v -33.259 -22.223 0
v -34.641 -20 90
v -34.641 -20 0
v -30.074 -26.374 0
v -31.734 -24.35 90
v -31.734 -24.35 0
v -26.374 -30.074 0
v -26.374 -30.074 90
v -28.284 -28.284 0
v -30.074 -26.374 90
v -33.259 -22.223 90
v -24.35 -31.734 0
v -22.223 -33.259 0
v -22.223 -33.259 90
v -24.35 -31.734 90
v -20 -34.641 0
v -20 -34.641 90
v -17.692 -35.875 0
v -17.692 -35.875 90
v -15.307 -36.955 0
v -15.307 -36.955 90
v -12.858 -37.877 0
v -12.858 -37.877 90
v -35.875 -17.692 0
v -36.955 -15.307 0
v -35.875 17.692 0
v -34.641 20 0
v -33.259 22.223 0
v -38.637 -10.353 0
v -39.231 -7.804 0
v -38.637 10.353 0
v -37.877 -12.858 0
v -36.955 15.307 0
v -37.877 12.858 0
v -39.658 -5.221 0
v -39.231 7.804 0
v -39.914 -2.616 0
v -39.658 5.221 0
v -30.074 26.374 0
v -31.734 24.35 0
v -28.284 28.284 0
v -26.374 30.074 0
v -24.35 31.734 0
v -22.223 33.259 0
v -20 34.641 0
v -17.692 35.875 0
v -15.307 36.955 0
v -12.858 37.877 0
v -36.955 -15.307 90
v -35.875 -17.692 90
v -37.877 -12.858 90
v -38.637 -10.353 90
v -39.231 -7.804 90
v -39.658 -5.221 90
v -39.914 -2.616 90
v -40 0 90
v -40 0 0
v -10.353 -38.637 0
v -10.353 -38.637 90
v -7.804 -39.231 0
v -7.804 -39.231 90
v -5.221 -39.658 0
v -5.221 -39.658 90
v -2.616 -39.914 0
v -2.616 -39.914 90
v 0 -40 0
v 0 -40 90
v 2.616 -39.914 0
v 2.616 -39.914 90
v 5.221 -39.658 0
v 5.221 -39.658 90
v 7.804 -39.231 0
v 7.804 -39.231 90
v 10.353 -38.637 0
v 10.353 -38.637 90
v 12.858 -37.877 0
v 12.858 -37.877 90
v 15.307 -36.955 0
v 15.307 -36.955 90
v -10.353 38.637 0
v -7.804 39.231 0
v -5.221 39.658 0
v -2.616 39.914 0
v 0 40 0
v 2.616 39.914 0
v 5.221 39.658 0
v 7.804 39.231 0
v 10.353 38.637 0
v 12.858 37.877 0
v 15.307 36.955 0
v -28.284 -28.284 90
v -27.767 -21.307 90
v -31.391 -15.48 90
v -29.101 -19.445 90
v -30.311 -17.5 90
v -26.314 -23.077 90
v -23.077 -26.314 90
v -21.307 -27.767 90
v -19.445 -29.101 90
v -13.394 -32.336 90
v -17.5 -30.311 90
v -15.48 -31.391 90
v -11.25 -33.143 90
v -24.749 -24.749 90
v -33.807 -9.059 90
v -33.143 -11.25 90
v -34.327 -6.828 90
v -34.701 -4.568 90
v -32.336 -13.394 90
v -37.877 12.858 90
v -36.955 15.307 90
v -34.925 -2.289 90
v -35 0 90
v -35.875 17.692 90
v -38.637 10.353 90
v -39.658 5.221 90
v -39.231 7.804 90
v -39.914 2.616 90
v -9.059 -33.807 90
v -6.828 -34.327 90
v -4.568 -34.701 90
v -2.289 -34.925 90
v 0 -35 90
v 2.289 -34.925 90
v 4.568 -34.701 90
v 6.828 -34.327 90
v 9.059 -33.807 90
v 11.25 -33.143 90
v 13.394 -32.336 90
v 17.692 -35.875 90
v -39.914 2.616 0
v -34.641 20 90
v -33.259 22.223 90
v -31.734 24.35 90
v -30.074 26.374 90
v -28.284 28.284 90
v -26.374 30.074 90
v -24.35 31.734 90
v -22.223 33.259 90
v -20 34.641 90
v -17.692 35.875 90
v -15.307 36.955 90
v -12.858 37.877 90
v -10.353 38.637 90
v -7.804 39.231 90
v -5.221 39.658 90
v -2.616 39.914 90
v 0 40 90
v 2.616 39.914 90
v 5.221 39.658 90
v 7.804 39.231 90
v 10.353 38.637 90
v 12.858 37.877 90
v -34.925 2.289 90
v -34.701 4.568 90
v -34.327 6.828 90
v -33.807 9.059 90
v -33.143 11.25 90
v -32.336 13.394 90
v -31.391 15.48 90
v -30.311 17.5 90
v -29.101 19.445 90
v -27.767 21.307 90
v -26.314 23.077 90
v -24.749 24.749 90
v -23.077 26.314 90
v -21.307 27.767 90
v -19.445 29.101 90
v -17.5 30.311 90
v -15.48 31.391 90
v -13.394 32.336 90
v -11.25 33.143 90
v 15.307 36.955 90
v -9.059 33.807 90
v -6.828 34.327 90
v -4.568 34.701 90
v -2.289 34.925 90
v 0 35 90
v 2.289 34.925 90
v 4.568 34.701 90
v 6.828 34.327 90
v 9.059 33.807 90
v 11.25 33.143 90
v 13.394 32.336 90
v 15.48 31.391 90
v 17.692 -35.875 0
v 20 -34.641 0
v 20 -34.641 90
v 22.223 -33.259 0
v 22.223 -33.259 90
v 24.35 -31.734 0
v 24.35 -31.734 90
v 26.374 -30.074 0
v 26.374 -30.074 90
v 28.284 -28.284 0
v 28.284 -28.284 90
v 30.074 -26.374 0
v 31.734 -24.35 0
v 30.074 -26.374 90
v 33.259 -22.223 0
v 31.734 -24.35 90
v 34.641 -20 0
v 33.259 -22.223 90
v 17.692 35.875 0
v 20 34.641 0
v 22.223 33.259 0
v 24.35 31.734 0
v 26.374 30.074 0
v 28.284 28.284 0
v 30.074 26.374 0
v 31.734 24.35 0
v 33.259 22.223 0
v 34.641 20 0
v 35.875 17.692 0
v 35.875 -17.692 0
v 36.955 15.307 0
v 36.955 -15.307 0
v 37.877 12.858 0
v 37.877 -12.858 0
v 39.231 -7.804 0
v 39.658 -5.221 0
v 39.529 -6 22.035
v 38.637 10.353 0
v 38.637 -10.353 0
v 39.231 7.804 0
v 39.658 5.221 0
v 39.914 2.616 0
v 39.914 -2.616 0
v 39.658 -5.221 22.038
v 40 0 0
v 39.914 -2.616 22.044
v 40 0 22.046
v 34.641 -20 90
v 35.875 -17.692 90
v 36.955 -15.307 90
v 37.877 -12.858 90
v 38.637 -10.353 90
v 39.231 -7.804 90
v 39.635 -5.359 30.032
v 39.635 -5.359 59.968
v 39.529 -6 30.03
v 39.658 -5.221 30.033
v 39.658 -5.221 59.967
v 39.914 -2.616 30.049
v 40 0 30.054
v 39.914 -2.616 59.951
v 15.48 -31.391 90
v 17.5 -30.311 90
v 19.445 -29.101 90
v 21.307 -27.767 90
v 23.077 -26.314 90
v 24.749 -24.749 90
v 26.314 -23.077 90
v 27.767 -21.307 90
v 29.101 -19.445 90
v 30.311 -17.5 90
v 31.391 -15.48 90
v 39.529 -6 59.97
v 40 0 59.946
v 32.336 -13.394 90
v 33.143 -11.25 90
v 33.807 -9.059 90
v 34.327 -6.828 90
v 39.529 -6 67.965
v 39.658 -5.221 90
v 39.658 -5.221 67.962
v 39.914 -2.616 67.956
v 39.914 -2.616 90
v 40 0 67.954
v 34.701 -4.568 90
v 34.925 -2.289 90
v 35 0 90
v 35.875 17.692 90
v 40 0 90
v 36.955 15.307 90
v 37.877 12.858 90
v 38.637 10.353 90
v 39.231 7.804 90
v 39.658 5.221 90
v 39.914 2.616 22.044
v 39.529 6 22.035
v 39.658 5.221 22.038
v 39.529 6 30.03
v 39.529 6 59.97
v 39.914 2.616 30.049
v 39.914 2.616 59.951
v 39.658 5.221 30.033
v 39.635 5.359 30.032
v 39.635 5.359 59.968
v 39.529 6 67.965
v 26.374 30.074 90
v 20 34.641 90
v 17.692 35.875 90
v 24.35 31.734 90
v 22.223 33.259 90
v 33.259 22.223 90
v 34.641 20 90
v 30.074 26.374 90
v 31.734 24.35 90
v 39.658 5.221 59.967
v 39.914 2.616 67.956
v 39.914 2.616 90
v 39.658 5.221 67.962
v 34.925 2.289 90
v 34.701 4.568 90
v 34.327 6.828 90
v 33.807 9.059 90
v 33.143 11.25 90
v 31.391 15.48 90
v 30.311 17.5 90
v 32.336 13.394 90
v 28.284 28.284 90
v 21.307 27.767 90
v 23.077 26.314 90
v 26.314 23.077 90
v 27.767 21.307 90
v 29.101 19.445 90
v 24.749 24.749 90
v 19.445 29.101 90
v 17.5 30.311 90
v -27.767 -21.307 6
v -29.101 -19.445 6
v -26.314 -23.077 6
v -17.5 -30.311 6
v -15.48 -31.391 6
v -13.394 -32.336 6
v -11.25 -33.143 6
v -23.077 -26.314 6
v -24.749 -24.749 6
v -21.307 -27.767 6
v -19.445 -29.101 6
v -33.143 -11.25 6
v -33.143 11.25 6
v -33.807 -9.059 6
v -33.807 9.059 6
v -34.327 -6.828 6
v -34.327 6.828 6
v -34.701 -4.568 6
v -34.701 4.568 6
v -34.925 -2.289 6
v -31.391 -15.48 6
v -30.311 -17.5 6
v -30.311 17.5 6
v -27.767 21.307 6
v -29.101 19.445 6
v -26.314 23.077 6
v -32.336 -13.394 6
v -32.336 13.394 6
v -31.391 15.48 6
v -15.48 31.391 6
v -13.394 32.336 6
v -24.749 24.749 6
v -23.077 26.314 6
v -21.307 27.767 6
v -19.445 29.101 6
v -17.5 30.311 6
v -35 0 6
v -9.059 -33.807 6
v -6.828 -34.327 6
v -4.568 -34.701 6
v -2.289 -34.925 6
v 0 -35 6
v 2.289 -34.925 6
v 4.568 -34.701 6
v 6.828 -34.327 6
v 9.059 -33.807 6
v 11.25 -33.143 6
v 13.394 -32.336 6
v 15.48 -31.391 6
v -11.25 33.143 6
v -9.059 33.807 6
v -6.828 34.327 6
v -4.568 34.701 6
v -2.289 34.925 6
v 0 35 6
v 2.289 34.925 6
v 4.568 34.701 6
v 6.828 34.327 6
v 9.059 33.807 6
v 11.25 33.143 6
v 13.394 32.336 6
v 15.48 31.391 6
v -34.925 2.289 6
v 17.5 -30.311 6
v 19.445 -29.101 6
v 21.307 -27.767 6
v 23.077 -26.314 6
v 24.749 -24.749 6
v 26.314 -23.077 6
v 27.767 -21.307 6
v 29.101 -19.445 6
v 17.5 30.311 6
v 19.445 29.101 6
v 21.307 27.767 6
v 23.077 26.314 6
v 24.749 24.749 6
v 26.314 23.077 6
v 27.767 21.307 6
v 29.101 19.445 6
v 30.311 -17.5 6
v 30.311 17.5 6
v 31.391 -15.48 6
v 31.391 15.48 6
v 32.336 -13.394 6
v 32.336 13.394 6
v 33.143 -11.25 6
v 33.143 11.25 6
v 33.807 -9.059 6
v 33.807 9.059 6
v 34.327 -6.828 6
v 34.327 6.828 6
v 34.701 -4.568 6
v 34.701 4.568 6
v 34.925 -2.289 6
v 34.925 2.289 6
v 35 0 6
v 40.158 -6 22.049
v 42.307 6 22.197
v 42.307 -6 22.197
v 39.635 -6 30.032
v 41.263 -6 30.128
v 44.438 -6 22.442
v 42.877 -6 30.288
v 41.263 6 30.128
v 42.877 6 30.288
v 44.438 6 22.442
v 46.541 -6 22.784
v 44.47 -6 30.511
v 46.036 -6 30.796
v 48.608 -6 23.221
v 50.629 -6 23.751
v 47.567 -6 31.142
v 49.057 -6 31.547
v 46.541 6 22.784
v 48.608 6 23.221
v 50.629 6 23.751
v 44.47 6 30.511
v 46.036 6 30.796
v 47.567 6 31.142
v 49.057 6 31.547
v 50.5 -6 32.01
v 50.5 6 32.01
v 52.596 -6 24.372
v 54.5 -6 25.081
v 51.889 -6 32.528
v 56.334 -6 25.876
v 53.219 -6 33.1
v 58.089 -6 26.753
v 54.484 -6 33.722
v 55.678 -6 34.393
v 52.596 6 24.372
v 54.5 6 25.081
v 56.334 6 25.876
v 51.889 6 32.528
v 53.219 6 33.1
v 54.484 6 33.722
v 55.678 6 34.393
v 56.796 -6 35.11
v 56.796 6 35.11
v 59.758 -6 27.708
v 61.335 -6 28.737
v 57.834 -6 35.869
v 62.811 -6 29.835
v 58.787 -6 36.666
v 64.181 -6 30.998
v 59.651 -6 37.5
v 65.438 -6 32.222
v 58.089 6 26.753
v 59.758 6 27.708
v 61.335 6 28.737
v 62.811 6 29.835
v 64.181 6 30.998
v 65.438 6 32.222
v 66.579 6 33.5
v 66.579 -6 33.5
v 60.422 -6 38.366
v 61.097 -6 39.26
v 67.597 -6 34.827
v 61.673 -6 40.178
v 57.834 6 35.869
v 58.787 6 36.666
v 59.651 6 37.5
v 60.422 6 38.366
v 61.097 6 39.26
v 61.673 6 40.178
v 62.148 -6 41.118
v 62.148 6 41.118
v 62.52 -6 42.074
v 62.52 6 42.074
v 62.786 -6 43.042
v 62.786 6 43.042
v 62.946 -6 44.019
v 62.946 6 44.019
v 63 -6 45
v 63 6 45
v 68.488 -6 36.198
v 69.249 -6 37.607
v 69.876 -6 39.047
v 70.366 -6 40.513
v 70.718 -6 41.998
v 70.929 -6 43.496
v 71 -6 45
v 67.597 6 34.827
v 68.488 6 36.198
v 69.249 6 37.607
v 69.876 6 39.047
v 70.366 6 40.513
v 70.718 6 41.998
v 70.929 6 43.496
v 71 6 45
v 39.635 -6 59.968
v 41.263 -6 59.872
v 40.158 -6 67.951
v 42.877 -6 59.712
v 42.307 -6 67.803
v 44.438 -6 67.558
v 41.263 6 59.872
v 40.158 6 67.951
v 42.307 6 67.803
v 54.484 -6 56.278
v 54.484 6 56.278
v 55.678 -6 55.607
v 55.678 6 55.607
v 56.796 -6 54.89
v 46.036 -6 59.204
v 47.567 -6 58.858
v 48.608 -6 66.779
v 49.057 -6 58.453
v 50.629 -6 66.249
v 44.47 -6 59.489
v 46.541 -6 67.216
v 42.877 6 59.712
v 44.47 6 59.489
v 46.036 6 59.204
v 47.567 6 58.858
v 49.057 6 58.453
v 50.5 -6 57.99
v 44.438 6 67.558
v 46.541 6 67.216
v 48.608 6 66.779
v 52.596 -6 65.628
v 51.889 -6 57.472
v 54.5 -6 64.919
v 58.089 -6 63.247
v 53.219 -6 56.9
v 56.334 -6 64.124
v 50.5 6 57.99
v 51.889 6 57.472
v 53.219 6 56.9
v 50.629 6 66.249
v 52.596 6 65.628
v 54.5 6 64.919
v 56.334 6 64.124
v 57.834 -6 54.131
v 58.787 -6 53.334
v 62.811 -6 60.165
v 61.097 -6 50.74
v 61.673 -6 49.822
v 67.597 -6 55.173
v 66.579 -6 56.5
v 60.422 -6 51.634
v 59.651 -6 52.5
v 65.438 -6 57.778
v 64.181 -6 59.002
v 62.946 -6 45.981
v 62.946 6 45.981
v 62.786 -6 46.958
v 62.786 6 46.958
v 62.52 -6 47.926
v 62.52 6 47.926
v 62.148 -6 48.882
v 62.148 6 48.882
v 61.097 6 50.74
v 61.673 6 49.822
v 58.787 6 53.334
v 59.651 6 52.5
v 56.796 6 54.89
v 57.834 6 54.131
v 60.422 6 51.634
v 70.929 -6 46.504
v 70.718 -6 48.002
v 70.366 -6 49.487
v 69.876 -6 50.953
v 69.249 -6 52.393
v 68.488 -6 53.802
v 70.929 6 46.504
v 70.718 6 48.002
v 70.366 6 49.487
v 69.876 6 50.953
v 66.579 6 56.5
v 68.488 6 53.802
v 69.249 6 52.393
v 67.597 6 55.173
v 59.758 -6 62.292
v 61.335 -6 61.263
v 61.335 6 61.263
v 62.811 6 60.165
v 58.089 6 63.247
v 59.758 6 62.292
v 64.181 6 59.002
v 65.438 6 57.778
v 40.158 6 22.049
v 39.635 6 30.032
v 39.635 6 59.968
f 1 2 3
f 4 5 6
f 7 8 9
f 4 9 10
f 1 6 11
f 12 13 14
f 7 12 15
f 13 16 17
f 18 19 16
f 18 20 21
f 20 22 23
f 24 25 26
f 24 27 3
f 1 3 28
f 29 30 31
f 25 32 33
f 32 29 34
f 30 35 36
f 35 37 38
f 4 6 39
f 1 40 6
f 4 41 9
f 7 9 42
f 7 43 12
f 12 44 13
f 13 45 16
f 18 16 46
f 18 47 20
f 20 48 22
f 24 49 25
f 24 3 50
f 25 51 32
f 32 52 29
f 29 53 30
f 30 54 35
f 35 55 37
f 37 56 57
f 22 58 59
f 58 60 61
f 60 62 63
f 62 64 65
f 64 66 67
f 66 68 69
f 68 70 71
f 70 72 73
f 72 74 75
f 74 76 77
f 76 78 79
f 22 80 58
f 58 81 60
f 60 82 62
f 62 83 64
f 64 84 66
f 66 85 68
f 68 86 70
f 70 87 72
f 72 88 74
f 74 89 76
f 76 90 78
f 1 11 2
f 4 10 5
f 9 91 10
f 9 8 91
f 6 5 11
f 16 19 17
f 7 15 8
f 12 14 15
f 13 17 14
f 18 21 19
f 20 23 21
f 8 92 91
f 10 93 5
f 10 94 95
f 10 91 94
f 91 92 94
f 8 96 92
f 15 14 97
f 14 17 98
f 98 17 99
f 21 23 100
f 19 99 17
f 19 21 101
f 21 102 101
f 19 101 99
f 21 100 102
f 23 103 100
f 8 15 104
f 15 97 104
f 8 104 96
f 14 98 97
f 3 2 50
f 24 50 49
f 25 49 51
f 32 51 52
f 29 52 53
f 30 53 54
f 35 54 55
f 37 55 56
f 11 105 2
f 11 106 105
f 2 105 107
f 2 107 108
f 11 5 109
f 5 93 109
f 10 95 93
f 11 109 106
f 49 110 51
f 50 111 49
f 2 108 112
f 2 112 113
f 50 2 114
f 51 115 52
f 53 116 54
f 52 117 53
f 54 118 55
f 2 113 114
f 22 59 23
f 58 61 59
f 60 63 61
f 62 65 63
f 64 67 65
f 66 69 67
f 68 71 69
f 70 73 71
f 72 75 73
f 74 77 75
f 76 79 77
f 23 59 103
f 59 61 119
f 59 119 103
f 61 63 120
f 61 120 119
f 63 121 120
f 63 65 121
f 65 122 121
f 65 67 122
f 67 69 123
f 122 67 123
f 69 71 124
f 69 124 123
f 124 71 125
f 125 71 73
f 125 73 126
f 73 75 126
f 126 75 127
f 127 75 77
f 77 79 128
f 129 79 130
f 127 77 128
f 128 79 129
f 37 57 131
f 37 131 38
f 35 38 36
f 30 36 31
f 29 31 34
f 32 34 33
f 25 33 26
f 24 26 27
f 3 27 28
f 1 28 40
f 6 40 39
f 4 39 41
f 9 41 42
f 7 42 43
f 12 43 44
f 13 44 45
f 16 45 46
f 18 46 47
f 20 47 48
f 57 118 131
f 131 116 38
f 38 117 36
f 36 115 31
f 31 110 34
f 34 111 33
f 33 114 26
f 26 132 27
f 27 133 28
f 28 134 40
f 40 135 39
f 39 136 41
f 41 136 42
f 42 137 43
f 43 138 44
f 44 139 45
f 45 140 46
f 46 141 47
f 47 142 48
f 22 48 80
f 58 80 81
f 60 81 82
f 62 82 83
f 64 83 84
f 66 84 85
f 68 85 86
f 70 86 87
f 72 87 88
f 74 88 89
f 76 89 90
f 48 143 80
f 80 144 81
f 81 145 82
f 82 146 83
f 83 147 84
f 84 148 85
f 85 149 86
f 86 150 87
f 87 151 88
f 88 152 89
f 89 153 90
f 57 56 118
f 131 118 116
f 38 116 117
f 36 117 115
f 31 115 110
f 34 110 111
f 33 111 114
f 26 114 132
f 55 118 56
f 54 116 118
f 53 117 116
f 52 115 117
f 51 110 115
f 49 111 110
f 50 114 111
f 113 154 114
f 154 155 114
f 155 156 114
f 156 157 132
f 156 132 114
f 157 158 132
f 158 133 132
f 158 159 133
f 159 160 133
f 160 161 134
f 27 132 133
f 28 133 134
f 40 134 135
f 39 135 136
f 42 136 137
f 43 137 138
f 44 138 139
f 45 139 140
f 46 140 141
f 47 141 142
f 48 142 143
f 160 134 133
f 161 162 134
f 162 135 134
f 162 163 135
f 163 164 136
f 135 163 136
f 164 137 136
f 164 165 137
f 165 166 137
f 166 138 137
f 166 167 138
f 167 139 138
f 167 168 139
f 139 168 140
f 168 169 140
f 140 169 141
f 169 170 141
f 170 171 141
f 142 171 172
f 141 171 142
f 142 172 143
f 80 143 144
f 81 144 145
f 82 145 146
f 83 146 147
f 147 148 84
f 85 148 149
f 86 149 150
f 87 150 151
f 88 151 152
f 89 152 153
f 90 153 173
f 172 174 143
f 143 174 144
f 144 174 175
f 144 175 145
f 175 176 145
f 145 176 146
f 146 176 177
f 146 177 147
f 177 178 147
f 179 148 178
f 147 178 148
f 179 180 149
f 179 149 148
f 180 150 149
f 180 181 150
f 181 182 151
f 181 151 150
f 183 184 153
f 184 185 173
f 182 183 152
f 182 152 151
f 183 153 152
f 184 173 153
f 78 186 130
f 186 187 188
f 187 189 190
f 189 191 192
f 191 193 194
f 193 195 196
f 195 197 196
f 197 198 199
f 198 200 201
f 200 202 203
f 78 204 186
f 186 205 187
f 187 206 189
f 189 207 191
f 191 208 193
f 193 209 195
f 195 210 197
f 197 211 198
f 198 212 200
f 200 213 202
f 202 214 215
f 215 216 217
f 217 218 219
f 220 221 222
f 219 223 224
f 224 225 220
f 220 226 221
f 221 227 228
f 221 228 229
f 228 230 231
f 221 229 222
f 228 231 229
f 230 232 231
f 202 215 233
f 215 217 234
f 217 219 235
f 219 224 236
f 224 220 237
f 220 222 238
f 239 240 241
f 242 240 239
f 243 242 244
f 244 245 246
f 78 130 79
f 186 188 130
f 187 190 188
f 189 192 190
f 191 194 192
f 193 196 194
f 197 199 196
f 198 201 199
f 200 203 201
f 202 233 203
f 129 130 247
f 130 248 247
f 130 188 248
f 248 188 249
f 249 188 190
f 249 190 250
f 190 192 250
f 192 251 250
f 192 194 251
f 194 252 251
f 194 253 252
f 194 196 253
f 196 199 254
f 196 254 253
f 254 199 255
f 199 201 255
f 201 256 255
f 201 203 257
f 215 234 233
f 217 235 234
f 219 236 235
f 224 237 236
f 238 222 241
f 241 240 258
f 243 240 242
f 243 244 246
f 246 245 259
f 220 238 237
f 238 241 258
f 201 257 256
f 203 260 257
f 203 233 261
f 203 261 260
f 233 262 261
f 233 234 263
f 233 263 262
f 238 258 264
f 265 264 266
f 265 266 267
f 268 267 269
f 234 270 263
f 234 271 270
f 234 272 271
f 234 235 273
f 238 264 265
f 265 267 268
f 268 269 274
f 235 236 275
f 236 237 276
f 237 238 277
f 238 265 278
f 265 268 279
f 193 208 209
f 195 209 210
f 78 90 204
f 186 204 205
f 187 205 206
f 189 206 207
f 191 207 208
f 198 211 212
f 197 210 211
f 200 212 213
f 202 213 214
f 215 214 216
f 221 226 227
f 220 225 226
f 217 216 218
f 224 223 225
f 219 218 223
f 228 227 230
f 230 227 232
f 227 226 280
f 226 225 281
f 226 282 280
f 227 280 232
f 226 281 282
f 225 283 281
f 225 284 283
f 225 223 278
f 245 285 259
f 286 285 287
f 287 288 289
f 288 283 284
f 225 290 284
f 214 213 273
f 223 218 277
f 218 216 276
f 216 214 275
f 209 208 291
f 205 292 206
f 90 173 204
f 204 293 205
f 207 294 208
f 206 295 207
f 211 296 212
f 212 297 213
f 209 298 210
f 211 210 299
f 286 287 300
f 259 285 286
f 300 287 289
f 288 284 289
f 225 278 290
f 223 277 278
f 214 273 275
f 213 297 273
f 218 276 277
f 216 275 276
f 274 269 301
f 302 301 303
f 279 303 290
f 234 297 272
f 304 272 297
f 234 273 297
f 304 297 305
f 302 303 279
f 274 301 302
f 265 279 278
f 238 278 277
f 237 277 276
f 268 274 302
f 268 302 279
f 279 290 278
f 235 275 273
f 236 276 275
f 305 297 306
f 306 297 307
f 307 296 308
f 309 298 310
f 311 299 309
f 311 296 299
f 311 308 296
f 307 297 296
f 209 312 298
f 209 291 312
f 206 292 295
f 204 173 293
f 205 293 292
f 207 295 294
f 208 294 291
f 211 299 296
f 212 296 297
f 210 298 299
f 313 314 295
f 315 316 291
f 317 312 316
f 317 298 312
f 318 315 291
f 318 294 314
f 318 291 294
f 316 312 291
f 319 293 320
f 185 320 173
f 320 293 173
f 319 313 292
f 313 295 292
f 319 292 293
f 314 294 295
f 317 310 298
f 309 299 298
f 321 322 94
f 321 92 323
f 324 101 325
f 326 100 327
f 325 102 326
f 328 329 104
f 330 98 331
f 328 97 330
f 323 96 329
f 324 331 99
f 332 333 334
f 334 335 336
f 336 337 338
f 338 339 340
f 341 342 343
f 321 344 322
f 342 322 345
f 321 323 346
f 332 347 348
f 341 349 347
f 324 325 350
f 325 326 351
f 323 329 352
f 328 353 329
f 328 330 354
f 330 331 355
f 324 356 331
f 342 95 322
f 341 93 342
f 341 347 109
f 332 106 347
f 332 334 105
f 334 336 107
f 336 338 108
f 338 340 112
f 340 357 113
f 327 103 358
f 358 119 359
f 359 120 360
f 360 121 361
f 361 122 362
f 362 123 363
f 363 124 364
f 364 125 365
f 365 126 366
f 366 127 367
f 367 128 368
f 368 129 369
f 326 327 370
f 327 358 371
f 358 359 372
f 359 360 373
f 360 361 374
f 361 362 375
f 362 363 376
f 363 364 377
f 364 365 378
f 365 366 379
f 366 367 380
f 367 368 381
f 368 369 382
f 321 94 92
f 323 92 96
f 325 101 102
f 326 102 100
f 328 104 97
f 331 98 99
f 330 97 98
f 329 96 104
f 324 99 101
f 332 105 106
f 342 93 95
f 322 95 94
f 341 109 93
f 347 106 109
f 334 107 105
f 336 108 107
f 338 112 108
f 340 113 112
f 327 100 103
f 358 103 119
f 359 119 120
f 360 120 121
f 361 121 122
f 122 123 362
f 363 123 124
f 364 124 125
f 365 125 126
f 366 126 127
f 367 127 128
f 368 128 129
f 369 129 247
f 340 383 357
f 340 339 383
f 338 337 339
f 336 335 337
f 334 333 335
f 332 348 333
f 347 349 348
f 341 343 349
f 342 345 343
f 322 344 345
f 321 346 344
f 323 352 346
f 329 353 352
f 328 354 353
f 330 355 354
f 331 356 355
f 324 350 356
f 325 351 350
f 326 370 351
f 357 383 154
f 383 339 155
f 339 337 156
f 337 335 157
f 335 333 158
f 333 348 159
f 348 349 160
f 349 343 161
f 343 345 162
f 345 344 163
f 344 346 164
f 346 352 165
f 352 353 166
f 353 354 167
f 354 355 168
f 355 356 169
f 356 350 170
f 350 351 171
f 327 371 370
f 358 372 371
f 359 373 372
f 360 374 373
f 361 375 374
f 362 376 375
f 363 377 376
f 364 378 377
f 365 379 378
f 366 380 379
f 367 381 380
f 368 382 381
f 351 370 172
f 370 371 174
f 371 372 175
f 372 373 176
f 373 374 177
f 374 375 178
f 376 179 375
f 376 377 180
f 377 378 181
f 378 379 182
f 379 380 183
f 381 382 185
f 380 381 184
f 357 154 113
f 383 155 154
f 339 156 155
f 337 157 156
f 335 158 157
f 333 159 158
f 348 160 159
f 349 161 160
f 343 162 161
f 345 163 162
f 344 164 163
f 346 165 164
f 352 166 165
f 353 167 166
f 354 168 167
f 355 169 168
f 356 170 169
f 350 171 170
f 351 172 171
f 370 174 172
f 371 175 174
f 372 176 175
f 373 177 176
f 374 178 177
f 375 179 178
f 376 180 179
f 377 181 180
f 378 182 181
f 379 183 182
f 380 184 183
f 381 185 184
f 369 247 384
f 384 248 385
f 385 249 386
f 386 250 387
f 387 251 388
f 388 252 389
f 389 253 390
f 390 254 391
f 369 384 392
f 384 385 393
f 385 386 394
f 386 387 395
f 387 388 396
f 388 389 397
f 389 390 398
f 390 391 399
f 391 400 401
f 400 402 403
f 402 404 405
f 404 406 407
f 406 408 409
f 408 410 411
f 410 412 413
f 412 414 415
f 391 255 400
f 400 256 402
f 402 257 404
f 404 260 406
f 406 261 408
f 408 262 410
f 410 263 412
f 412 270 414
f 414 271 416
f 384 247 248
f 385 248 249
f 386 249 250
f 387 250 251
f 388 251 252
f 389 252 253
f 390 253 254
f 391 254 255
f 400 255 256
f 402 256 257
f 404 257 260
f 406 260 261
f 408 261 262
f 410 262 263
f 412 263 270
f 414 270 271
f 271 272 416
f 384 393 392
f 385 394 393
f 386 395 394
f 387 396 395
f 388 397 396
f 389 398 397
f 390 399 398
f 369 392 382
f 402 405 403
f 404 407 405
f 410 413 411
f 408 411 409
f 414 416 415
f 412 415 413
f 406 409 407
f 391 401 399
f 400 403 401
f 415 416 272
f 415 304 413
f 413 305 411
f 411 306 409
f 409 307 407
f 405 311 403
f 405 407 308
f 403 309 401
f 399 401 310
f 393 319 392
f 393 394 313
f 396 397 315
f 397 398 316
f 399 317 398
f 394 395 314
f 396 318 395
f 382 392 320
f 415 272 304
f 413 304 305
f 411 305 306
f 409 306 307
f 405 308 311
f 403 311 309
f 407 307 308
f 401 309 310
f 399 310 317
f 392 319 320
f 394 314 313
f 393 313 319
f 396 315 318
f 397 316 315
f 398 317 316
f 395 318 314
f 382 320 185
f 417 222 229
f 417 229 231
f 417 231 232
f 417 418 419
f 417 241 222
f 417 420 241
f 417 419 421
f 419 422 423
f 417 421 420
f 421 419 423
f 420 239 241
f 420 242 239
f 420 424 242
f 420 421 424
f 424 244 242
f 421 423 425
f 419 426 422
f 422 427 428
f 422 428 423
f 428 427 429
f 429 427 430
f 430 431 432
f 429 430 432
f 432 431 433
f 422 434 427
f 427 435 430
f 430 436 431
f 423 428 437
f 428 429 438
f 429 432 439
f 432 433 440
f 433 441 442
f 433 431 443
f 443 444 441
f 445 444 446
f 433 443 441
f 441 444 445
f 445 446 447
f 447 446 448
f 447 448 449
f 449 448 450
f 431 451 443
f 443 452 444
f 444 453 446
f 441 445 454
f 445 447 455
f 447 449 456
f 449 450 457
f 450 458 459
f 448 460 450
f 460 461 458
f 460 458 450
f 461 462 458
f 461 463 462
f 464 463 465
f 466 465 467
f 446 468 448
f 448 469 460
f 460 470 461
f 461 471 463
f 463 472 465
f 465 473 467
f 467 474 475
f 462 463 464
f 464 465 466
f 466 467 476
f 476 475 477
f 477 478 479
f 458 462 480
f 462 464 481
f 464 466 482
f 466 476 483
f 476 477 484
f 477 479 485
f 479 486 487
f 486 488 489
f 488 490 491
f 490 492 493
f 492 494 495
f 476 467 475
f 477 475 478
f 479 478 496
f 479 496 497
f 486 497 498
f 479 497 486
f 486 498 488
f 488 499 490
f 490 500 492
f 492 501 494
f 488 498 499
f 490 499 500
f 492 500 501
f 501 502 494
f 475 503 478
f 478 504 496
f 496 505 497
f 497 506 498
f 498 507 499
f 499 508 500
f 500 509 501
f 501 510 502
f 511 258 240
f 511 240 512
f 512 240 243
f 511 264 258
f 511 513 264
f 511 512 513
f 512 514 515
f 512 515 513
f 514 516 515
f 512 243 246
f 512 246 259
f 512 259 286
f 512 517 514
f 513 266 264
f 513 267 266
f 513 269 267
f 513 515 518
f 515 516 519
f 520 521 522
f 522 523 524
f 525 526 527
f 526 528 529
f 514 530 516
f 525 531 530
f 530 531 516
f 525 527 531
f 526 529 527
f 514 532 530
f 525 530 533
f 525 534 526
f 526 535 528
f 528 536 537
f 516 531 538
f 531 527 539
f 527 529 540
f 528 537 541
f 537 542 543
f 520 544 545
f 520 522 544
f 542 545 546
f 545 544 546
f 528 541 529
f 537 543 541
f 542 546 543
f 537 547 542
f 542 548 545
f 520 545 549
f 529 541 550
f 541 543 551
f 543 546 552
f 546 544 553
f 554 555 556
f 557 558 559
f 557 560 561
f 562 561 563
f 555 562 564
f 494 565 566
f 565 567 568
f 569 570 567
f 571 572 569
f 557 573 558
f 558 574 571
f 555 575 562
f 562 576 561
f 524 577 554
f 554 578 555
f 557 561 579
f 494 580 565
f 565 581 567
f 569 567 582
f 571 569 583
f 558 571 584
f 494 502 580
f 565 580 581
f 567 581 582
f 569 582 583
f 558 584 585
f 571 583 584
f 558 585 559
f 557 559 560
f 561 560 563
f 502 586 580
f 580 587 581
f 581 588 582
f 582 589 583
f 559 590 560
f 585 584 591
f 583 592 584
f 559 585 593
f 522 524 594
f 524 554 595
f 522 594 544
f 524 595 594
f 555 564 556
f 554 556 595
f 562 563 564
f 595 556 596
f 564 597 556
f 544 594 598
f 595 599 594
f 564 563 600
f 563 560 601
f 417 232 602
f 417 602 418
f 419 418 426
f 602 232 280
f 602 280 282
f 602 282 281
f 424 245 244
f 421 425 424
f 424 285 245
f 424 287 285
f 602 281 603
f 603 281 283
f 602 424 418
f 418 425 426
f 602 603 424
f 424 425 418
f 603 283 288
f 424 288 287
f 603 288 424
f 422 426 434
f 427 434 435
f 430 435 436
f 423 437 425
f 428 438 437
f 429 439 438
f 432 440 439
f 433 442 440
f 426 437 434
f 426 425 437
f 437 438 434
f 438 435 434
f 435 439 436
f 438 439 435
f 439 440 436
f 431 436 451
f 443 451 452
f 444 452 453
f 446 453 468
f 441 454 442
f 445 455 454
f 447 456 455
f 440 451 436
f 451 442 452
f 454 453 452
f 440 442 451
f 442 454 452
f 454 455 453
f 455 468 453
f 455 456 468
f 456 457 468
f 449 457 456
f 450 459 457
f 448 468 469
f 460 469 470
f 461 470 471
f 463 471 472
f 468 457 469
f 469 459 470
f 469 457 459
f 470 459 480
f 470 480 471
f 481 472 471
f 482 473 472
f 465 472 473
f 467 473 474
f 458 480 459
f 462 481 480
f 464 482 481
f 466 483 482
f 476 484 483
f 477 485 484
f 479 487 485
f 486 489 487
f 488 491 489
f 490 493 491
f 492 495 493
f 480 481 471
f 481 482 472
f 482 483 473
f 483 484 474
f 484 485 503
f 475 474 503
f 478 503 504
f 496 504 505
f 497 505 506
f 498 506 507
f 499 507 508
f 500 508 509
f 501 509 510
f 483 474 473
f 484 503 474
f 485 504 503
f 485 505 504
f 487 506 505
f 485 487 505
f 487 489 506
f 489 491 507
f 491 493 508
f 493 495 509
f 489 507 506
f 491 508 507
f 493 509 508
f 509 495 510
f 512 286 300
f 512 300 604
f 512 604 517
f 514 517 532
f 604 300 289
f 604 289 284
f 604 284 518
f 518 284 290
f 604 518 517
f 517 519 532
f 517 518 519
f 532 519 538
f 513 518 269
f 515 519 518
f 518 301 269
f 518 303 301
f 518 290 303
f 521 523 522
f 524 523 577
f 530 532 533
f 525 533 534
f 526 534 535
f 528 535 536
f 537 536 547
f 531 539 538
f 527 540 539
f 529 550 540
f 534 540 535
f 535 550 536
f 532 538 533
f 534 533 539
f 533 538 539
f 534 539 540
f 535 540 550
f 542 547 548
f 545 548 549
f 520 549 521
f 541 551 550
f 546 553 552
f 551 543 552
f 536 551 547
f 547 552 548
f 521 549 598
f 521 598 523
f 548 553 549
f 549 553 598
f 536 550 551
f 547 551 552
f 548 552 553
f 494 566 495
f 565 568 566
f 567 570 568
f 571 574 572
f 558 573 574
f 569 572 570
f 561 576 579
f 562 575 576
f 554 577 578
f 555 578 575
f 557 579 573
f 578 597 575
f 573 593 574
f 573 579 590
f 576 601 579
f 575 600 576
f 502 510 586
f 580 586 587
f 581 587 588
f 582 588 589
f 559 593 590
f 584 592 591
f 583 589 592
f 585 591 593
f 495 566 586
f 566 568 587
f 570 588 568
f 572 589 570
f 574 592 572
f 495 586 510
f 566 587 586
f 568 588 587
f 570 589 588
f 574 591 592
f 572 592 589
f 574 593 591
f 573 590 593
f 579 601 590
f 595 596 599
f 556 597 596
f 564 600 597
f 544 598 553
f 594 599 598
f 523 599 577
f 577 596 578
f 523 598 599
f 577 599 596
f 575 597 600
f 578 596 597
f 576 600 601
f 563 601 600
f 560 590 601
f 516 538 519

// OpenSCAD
$fn = 96;

outer_d   = 80;       // 外径
inner_d   = 70;       // 内径
height    = 90;       // 高さ
bottom_t  = 6;        // 底厚

// 取手パラメータ
h_inner_h = 30;       // 内側空間 高さ
h_inner_w = 25;       // 内側空間 幅
h_thick   = 8;        // 取手の太さ(断面)
h_width   = 12;       // 取手のY方向の幅(板厚)
h_center_z = height / 2;

module body() {
    difference() {
        // 外形
        cylinder(d = outer_d, h = height);
        // 内側の中空部(底厚を残す)
        translate([0, 0, bottom_t])
            cylinder(d = inner_d, h = height - bottom_t + 1);
    }
}

module handle() {
    // D字形:外側半円(楕円弧)、本体側は直線
    // XZ平面内のリングをY軸方向に厚みh_widthで作り、+X側半分のみ残す
    rz_in  = h_inner_h / 2;            // 内側 縦半径 15
    rx_in  = h_inner_w;                // 内側 横半径 25
    rz_out = rz_in + h_thick;          // 外側 縦半径
    rx_out = rx_in + h_thick;          // 外側 横半径

    attach_x = outer_d/2 - 2;          // 本体壁に2mm食い込ませて確実にunion

    translate([attach_x, 0, h_center_z])
        difference() {
            // リング(楕円断面)
            rotate([90, 0, 0])
                translate([0, 0, -h_width/2])
                    linear_extrude(height = h_width)
                        difference() {
                            scale([rx_out/rz_out, 1])
                                circle(r = rz_out);
                            scale([rx_in/rz_in, 1])
                                circle(r = rz_in);
                        }
            // -X側半分を切除(本体側は直線=D字)
            translate([-rx_out*2, -h_width, -rz_out*2])
                cube([rx_out*2, h_width*2, rz_out*4]);
        }
}

union() {
    body();
    handle();
}
